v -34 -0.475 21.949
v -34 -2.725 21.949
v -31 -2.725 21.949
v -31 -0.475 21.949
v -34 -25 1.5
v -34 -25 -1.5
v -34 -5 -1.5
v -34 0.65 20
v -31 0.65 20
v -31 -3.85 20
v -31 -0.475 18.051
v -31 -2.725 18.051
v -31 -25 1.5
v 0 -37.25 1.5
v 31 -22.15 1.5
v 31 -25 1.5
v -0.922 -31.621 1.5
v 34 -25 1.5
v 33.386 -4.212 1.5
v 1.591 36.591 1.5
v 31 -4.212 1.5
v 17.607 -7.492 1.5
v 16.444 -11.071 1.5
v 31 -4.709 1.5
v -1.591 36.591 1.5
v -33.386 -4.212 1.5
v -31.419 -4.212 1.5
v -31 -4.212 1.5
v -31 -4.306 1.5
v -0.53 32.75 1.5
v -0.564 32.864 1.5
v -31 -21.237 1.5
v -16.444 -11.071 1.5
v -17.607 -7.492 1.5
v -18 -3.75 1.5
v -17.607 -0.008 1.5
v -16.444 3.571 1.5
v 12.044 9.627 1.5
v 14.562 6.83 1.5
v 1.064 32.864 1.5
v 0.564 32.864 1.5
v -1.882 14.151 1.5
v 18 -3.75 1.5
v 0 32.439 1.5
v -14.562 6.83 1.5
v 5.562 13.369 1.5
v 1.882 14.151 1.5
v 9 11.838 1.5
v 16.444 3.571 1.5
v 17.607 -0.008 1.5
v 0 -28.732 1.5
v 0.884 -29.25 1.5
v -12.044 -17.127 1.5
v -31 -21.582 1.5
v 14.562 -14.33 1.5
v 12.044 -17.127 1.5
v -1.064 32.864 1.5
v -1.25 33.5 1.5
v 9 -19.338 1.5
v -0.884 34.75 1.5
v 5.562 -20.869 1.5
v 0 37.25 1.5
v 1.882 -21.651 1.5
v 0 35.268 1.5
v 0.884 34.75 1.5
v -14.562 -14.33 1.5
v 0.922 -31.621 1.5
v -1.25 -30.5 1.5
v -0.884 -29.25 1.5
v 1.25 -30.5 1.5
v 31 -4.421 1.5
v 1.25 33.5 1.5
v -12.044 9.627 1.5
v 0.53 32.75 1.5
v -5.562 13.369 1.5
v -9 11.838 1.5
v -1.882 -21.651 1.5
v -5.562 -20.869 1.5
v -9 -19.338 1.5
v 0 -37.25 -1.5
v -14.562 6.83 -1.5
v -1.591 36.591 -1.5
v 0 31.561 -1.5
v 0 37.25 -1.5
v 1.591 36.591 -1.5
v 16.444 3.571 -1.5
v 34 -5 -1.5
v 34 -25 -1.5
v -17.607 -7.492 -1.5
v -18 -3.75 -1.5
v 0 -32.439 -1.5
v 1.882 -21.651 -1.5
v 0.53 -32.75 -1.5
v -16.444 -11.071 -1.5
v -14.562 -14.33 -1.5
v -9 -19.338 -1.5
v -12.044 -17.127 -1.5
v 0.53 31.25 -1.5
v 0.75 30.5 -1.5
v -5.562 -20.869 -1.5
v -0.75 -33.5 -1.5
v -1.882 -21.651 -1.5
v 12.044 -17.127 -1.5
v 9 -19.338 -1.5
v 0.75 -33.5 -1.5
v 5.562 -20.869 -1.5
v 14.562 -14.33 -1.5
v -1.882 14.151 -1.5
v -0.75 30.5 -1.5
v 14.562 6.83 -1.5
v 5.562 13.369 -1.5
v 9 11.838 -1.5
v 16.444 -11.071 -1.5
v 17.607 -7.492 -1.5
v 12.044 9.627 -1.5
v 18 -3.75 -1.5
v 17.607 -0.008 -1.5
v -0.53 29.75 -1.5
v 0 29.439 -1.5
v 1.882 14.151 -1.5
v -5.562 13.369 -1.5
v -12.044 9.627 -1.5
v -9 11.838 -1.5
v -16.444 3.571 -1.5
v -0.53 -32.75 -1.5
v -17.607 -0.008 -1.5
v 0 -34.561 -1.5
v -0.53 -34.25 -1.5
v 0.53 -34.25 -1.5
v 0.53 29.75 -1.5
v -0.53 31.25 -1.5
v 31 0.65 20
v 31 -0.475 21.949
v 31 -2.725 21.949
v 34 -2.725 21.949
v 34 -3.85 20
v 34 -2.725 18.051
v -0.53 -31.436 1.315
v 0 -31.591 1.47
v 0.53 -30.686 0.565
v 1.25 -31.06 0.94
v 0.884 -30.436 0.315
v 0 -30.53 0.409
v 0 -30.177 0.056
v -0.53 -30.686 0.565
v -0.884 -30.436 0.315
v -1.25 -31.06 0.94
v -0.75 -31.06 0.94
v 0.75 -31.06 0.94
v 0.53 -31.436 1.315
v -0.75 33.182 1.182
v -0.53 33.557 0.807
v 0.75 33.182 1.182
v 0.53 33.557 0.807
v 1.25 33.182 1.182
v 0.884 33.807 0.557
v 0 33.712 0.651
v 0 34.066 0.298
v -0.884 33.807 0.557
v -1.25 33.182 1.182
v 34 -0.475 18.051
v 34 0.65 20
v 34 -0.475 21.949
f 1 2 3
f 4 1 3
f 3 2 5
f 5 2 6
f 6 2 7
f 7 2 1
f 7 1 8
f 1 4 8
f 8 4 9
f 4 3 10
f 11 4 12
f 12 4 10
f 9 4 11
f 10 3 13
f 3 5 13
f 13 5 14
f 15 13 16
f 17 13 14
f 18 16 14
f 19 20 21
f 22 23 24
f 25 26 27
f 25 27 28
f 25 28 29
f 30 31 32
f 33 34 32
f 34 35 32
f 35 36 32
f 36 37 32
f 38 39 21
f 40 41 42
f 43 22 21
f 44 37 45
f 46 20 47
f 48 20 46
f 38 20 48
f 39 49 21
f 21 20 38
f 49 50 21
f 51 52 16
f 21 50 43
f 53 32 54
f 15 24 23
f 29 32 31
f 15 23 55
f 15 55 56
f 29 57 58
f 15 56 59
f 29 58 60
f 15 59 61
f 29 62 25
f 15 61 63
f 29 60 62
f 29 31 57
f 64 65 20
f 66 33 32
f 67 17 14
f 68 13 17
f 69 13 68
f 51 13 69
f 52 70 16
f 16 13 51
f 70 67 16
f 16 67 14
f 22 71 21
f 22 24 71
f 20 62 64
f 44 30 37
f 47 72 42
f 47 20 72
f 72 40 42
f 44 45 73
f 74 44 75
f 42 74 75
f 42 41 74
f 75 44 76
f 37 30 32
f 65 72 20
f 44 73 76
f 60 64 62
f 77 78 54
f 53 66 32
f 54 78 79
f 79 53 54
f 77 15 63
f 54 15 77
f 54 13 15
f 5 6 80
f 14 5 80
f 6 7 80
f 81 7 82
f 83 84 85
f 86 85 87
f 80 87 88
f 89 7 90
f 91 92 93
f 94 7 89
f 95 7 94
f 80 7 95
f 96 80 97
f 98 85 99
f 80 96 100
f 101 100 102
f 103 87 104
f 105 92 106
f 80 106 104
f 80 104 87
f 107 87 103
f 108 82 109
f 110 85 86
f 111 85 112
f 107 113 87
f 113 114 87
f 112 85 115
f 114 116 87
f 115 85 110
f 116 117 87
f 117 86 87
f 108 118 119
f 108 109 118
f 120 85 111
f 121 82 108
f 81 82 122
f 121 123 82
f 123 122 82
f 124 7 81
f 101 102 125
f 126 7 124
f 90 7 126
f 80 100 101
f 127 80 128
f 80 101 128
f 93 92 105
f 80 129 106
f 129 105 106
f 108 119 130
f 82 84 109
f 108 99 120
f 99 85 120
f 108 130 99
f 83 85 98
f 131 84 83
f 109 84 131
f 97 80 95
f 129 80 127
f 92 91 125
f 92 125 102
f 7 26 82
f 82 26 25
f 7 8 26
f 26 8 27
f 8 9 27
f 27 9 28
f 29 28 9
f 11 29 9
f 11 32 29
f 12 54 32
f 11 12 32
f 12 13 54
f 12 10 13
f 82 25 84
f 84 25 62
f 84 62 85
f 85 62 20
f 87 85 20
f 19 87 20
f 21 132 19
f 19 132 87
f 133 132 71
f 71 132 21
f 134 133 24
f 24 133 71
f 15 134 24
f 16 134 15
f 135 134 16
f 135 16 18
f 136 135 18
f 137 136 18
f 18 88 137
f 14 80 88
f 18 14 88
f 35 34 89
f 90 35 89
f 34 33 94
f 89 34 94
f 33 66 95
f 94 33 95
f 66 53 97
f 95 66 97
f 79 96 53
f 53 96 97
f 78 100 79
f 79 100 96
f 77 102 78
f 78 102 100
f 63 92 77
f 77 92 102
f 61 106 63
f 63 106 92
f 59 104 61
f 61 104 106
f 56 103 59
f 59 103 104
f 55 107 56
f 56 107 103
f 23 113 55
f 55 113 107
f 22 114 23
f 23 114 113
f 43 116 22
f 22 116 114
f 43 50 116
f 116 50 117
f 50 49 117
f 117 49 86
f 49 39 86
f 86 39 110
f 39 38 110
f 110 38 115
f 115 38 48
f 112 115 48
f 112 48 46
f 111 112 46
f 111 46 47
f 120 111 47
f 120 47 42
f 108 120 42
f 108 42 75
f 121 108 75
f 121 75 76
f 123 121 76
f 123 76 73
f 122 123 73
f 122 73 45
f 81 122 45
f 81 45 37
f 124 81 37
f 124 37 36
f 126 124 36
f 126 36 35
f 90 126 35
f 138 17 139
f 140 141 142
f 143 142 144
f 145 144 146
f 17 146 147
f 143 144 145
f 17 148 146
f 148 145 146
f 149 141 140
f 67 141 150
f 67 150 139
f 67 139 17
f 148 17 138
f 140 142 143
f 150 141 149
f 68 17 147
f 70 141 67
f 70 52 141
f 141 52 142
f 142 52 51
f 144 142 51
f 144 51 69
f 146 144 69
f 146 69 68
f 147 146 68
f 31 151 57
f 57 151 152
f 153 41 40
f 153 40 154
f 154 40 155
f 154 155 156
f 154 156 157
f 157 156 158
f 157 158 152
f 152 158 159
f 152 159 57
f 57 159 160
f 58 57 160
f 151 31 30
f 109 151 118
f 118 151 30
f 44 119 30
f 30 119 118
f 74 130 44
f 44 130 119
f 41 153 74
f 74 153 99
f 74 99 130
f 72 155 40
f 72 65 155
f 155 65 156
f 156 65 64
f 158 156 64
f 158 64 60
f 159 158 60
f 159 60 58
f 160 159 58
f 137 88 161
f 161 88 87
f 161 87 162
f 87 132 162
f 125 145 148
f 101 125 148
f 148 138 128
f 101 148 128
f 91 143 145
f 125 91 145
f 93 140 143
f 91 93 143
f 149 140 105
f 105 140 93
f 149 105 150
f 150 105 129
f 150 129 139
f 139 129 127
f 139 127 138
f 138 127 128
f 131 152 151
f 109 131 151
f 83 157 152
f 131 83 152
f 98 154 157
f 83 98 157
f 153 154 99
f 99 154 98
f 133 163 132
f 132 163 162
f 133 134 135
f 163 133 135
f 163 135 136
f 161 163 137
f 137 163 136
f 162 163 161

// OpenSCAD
top = 1;
bottom = -1;
left = -1;
right = 1;
front = -1;
rear = 1;

pod_opening_width    = 62;
base_thickness       = 3;
hook_thickness       = 3;
hook_height          = 20;
hook_depth           = 20;
hole_spacing         = 70;
nail_diam            = 1.5;
nail_head_diam       = 2.5;
rounded_diam         = nail_diam+base_thickness;
hook_vertical_offset = -hook_height*0.75;

module main() {
  module body() {
    hull() {
      for(side=[top,bottom]) {
        translate([0,hole_spacing/2*side,0]) {
          cylinder(r=rounded_diam/2,h=base_thickness,center=true);
        }
      }

      translate([0,hook_vertical_offset,0]) {
        cube([pod_opening_width+hook_thickness*2,hook_height,base_thickness],center=true);
      }
    }

    for(side=[left,right]) {
      translate([(pod_opening_width/2+hook_thickness/2)*side,hook_vertical_offset,0]) {
        hull() {
          cube([hook_thickness,hook_height,base_thickness],center=true);

          translate([0,hook_depth-hook_height*0.33,hook_depth])
            rotate([0,90,0])
              rotate([0,0,90])
                cylinder(r=rounded_diam/2,h=hook_thickness,center=true,$fn=6);
        }
      }
    }
  }

  module holes() {
    translate([0,hook_vertical_offset*0.25,0])
      cylinder(r=hook_height*0.9,h=100,center=true);

    for(side=[top,bottom]) {
      translate([0,(hole_spacing/2-nail_diam)*side,base_thickness/2*side]) {
        rotate([-45,0,0]) {
          cylinder(r=nail_diam/2,h=base_thickness*10,center=true,$fn=8);

          // this is probably too clever.  :(
          translate([0,0,5+(base_thickness*1)*((1-side)/2)+(base_thickness*.15*-side)]) {
            cylinder(r=nail_head_diam/2,h=10,center=true,$fn=8);
          }
        }
      }
    }
  }

  difference() {
    body();
    holes();
  }
}

main();
